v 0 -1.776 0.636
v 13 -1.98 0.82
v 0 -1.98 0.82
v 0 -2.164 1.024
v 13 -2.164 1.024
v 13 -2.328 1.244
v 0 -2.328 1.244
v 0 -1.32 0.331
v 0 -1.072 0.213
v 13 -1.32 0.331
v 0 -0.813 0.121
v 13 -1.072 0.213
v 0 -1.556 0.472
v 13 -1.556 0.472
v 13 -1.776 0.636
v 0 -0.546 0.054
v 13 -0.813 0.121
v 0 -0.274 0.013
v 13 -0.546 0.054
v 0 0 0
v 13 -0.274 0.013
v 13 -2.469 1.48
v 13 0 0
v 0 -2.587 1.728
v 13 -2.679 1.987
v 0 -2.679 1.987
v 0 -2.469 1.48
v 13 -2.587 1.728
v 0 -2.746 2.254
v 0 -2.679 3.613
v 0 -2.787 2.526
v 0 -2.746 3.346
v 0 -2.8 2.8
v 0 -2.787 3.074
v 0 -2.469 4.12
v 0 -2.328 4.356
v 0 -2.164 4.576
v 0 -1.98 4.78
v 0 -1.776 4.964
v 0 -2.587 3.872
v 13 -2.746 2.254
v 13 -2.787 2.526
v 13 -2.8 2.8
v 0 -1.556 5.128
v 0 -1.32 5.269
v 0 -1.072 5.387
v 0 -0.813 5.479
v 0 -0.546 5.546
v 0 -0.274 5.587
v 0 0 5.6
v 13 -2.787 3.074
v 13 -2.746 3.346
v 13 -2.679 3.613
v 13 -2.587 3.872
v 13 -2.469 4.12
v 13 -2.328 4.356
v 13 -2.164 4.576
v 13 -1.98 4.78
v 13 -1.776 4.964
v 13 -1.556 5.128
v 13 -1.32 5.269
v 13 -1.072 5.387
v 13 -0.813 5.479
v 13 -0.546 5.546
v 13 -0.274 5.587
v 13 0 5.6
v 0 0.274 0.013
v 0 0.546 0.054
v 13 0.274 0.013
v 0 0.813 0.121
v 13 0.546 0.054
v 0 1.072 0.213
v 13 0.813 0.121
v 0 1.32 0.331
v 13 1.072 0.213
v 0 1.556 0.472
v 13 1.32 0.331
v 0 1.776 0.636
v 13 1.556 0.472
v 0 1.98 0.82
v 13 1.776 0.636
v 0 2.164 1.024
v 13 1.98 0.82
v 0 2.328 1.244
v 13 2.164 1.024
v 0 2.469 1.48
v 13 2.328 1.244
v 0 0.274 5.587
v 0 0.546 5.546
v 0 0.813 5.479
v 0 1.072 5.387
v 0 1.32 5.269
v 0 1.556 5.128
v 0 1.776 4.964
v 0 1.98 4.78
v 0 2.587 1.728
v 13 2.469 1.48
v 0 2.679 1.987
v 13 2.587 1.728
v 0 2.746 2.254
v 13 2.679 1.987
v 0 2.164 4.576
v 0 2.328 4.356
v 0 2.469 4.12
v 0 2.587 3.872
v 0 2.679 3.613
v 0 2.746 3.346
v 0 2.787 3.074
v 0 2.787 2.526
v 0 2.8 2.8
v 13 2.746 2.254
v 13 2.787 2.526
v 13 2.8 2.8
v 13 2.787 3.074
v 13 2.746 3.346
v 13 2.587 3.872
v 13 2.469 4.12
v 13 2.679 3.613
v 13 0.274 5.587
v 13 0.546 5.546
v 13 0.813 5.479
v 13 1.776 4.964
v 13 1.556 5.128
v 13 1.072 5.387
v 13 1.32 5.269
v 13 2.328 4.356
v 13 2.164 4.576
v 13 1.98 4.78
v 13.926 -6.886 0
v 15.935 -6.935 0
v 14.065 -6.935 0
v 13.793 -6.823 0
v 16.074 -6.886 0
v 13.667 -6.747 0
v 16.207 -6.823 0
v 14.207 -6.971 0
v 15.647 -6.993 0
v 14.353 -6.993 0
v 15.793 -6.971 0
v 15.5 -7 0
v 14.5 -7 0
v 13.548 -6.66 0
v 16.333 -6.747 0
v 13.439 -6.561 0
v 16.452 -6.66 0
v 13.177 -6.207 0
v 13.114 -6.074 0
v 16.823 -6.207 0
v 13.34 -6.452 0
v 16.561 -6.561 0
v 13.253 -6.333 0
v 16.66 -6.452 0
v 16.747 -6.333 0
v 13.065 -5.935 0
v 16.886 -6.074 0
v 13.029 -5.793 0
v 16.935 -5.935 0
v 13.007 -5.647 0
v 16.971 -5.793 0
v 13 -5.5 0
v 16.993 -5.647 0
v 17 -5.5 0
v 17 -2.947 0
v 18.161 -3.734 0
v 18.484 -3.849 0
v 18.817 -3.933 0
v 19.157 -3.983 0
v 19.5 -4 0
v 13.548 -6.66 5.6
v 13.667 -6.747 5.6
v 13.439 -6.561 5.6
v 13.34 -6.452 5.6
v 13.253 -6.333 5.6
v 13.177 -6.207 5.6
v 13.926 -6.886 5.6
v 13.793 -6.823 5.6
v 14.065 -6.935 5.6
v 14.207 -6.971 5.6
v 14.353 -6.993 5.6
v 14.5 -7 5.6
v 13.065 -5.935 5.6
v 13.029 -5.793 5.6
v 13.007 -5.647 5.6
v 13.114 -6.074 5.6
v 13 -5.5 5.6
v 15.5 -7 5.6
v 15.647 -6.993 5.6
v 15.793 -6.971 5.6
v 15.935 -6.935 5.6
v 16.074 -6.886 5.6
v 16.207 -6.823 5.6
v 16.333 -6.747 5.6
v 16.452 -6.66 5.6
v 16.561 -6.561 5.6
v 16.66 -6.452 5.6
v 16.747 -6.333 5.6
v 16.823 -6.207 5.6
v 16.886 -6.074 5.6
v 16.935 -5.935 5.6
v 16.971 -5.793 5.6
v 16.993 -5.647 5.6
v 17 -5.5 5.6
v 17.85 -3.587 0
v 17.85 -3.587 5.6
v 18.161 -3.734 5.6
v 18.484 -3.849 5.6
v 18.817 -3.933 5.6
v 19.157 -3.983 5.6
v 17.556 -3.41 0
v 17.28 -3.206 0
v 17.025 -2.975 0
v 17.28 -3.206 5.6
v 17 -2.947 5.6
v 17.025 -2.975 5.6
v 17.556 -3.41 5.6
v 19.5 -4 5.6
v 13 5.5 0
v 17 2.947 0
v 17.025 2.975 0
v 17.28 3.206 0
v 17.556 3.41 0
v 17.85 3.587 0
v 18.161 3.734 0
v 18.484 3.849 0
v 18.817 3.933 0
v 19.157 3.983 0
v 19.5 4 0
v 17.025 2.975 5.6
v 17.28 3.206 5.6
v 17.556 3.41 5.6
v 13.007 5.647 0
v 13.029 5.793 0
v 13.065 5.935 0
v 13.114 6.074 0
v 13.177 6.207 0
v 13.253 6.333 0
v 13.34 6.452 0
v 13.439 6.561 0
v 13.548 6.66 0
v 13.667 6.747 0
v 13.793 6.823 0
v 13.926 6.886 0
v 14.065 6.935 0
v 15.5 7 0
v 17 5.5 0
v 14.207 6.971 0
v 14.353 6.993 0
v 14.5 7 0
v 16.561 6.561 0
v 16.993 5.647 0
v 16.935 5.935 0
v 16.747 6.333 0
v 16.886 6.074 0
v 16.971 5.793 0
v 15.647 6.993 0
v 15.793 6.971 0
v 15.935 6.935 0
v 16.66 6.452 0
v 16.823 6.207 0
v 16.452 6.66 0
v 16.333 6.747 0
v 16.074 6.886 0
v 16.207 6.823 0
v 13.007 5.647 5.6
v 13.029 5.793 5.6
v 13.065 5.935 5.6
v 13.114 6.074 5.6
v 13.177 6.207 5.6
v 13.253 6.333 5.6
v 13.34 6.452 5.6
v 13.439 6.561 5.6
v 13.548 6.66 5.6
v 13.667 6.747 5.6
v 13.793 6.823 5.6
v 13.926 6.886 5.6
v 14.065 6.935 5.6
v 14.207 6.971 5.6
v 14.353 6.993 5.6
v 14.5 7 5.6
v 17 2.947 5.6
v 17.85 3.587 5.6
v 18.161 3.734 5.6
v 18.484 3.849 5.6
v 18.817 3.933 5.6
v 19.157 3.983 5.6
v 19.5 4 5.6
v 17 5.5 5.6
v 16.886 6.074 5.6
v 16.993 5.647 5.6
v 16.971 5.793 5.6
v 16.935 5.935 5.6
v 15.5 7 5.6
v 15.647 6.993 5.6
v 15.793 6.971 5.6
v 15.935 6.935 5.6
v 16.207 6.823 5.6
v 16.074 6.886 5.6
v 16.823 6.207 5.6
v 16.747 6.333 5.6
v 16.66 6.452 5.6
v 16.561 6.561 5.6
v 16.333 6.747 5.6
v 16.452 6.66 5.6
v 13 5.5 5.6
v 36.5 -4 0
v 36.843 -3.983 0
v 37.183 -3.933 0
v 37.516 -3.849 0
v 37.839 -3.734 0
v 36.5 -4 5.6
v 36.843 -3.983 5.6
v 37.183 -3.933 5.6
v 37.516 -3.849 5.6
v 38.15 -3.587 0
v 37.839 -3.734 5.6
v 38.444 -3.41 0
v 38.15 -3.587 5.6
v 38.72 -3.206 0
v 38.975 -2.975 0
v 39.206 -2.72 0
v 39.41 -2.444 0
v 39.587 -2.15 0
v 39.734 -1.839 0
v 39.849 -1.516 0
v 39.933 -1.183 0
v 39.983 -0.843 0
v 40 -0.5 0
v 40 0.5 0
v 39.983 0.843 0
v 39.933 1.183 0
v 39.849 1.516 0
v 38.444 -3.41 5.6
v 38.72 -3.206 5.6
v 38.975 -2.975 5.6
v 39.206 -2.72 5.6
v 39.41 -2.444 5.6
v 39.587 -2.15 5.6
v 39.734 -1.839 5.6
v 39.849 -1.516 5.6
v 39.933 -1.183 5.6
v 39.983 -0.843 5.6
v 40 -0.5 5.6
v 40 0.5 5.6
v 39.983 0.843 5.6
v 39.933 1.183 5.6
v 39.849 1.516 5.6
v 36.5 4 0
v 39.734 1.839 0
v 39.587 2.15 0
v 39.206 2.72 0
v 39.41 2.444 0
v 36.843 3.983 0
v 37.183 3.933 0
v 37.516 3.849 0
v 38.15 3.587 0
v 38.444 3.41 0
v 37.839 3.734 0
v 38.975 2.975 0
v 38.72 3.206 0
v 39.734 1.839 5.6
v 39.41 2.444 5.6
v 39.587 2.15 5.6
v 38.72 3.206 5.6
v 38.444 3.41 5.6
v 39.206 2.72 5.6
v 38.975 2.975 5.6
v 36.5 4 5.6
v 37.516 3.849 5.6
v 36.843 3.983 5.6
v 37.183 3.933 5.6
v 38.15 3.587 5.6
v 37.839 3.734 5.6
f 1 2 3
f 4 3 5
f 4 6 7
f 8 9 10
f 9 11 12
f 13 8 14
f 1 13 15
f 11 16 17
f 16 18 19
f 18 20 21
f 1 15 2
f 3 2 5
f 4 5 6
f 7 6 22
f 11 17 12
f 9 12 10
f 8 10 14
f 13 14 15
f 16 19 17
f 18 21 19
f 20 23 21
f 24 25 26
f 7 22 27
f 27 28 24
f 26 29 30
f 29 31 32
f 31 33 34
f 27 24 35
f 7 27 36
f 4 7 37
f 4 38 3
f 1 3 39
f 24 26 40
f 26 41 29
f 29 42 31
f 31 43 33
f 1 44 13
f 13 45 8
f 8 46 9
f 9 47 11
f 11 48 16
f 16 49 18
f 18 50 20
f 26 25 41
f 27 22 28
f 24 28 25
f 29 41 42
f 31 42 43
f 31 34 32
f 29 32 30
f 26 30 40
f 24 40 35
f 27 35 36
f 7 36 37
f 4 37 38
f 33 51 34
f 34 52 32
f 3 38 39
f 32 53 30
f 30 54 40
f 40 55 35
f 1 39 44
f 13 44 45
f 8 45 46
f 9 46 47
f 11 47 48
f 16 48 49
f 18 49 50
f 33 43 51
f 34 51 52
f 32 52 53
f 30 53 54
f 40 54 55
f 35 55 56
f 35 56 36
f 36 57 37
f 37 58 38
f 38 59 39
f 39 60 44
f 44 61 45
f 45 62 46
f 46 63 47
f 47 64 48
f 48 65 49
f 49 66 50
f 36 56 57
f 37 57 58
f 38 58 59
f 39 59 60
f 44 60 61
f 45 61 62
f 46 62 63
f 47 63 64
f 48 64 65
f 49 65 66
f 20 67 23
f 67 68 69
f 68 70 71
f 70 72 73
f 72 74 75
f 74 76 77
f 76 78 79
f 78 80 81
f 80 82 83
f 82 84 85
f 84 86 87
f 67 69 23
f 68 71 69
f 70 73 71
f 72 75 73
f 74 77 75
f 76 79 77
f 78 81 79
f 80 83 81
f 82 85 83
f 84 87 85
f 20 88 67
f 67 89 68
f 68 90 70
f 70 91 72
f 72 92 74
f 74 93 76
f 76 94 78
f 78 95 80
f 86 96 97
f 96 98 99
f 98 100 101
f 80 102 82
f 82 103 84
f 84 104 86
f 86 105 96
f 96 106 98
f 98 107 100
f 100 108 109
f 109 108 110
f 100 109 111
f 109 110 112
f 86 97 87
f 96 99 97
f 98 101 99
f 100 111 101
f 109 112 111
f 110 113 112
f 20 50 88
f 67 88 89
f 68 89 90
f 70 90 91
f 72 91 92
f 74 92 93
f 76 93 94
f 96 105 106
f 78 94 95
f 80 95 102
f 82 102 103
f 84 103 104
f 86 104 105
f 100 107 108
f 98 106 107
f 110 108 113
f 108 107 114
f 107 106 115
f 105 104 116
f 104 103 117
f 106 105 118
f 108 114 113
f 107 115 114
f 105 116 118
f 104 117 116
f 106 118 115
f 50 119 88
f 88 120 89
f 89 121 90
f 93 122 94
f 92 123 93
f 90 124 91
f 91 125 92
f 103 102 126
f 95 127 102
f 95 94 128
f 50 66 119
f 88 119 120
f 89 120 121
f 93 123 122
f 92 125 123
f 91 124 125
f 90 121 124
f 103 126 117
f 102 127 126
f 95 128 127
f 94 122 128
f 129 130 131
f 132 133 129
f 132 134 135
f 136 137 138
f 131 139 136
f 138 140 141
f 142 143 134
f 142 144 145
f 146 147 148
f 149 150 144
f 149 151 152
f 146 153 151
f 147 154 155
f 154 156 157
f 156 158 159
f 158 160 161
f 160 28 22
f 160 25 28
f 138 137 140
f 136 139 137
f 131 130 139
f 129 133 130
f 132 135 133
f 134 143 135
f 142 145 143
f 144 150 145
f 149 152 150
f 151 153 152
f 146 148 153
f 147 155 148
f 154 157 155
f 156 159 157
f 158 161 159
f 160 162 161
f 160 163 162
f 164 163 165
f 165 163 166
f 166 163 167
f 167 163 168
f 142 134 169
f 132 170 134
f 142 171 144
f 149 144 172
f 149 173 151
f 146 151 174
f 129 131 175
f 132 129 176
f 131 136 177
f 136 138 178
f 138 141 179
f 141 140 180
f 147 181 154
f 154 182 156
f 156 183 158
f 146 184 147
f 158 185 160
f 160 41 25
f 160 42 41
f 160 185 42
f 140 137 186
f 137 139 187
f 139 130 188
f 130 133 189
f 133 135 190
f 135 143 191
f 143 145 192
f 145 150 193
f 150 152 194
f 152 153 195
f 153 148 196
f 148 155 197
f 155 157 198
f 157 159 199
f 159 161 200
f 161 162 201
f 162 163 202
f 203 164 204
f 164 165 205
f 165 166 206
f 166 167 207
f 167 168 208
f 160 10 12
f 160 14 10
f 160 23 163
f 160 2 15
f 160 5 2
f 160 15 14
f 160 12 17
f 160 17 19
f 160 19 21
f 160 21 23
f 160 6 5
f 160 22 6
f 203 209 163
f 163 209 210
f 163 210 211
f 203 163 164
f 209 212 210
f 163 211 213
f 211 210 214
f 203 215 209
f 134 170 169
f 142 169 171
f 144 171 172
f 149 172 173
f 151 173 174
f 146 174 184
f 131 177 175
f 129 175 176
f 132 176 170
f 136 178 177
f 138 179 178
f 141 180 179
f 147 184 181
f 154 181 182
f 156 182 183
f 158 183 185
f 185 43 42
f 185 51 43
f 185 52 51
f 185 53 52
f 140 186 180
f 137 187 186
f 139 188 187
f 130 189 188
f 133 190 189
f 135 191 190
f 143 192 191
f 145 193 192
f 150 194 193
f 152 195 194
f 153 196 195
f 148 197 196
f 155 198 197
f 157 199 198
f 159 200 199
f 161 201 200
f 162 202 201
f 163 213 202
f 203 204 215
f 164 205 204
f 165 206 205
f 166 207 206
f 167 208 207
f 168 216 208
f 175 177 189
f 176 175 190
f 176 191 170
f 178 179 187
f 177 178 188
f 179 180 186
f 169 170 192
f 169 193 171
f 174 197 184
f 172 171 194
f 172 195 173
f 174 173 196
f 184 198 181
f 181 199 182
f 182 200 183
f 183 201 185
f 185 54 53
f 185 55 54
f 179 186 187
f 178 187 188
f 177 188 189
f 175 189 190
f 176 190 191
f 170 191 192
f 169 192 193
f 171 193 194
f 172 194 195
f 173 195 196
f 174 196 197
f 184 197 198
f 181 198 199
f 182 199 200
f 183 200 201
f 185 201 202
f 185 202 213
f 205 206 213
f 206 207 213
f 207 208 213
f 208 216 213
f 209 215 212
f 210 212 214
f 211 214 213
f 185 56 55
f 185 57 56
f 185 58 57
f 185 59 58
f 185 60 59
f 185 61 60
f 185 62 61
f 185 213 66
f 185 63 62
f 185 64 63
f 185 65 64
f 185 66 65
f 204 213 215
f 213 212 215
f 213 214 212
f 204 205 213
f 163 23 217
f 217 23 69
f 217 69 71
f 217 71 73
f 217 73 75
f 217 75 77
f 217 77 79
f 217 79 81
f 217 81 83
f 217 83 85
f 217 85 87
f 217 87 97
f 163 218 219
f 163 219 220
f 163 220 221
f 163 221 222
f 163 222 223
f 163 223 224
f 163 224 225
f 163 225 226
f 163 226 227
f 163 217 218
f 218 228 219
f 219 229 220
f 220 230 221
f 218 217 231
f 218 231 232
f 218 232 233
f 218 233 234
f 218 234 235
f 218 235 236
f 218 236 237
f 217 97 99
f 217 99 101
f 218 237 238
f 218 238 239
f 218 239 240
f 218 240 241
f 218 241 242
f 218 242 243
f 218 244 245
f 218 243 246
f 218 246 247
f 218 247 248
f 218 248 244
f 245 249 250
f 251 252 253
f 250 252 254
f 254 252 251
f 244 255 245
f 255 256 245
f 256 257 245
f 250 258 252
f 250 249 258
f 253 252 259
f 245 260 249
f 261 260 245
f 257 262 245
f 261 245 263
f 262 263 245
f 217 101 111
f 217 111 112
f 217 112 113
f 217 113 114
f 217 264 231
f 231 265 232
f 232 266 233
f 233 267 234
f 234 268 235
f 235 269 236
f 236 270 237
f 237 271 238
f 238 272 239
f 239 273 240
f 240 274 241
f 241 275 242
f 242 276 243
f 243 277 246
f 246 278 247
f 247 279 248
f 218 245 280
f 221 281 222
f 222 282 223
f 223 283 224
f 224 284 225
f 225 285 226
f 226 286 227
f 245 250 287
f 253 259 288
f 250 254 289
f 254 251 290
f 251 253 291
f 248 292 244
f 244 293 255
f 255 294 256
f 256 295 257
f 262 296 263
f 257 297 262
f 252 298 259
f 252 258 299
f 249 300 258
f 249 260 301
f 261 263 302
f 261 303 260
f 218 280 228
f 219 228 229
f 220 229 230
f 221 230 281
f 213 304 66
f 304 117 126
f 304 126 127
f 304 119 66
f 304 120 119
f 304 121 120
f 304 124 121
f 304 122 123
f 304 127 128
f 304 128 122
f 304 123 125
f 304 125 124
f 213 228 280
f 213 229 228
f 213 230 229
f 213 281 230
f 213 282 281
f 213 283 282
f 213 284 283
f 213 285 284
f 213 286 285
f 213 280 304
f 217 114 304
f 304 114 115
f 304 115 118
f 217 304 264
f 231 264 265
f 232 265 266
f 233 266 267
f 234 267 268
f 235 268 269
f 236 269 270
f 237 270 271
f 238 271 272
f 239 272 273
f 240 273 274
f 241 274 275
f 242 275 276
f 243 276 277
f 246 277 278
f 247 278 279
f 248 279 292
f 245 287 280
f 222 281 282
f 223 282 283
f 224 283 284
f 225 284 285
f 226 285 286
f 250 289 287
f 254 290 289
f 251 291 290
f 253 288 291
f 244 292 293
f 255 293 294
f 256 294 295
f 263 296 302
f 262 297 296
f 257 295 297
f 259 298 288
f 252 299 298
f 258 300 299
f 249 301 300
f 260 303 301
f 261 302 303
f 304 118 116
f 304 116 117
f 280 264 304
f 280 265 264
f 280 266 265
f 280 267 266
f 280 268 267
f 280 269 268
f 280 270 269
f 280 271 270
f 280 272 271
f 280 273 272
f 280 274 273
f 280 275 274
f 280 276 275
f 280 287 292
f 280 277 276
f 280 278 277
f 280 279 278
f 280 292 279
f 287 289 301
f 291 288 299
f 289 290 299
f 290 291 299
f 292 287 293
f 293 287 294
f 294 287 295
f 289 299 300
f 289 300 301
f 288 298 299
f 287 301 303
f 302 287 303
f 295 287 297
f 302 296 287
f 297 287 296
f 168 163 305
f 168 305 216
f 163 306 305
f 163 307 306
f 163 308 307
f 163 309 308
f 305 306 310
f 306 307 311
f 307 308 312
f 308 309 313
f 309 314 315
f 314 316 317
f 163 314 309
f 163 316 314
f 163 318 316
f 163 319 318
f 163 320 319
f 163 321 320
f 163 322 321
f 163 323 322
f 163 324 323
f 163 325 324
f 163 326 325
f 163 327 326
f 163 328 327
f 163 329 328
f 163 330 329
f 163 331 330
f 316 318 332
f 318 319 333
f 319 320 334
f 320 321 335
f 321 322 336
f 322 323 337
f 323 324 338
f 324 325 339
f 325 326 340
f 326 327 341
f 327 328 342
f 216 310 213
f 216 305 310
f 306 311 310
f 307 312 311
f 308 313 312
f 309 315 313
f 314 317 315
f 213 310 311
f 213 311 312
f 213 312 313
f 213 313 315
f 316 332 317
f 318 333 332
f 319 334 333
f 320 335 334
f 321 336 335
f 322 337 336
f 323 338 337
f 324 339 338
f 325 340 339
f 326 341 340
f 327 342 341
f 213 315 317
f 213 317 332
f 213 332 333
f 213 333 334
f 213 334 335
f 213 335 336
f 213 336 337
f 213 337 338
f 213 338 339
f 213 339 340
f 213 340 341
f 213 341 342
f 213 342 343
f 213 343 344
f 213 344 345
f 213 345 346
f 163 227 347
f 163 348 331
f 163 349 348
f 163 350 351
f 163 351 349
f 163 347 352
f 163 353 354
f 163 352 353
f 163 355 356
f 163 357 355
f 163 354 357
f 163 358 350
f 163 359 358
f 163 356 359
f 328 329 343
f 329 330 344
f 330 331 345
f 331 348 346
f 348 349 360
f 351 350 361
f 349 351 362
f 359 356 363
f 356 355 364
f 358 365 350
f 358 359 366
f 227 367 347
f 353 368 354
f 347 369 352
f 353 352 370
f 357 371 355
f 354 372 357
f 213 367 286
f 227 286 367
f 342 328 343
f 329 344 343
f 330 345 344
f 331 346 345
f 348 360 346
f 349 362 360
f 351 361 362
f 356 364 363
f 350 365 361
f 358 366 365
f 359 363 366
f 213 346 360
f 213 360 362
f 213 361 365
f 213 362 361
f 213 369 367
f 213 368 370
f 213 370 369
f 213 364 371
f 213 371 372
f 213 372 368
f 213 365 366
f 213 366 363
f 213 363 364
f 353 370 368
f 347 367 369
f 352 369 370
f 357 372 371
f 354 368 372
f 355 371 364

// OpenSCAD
// file: ../lib/soldier.scad
// toy-soldiers shared library
// All figures and weapons include this file. The grip interface constants
// are the contract: any weapon whose bar uses GRIP_BAR_D fits any figure
// whose hand uses GRIP_HOLE_D / GRIP_SLOT_W.

$fn = $preview ? 32 : 64;

// ---------------------------------------------------------------
// Grip interface — shared contract between figures and weapons
// ---------------------------------------------------------------
GRIP_BAR_D  = 5.6;  // weapon grip-bar diameter
GRIP_HOLE_D = 6.0;  // hand hole diameter (0.4mm clearance for FDM)
GRIP_SLOT_W = 5.3;  // C-opening width; bar snaps through the front
HAND_OD     = 11;   // hand outer diameter
HAND_H      = 9;    // hand height
GRIP_BAR_L  = 14;   // standard bar length (sticks out below the hand)

// ---------------------------------------------------------------
// Figure proportions (~70mm tall incl. base, +Y is forward)
// ---------------------------------------------------------------
BASE_D  = 26;  BASE_H  = 4;
LEG_H   = 22;  LEG_D   = 9;  HIP_X = 5.5;   // leg centre offset from middle
TORSO_H = 24;  TORSO_W = 20; TORSO_WAIST = 16; TORSO_D = 12;
HEAD_D  = 14;  NECK_H  = 3;

HIP_Z      = BASE_H + LEG_H;                 // 26
TORSO_Z0   = HIP_Z - 1;                      // torso overlaps hips 1mm
TORSO_Z1   = TORSO_Z0 + TORSO_H;             // 49
SHOULDER_Z = TORSO_Z1 - 3;                   // 46
SHOULDER_X = TORSO_W/2 + 1;                  // arm root
HEAD_CZ    = TORSO_Z1 + NECK_H + HEAD_D/2;   // head centre

// ---------------------------------------------------------------
// Primitives
// ---------------------------------------------------------------
module rounded_box(size, r=2)
    hull()
        for (x=[-1,1], y=[-1,1], z=[-1,1])
            translate([x*(size[0]/2-r), y*(size[1]/2-r), z*(size[2]/2-r)])
                sphere(r=r);

module limb(a, b, ra=4.5, rb=4)   // thick tapered limb between two points
    hull() { translate(a) sphere(r=ra); translate(b) sphere(r=rb); }

// ---------------------------------------------------------------
// Body parts
// ---------------------------------------------------------------
module base()
    cylinder(d1=BASE_D, d2=BASE_D-2, h=BASE_H);

module leg(x)
    union() {
        translate([x, 0, BASE_H-1]) cylinder(d=LEG_D, h=LEG_H+2);
        // boot: rests on the base, so no overhang
        translate([x, 3.5, BASE_H + 2.5]) rounded_box([LEG_D+1, 13, 5], 2);
    }

module torso()
    hull() {
        translate([0, 0, TORSO_Z0 + 2])
            rounded_box([TORSO_WAIST, TORSO_D-1, 4], 2);
        translate([0, 0, TORSO_Z1 - 2.5])
            rounded_box([TORSO_W, TORSO_D, 5], 2);
    }

module head() {
    // stout neck; the sphere's underside meets it at <45deg so no supports
    translate([0, 0, TORSO_Z1 - 1]) cylinder(d=9.5, h=NECK_H + 3);
    translate([0, 0, HEAD_CZ]) sphere(d=HEAD_D);
}

module helmet()
    translate([0, 0, HEAD_CZ + 1]) {
        difference() {
            sphere(d=HEAD_D + 3.5);
            translate([0, 0, -HEAD_D/2]) cube(HEAD_D*2, center=true);
        }
        // brim with 45-degree underside chamfer
        cylinder(d1=HEAD_D + 1, d2=HEAD_D + 5, h=2);
    }

module cap()   // officer's peaked cap
    translate([0, 0, HEAD_CZ + HEAD_D/2 - 3.5]) {
        cylinder(d1=HEAD_D - 0.5, d2=HEAD_D + 1.5, h=4);
        translate([0, 0, 4]) cylinder(d=HEAD_D + 2, h=1.5);
        // peak: wedge jutting over the face, 45deg chamfered underside
        hull() {
            translate([0, HEAD_D/2 - 2, 1.25]) cube([11, 2, 2.5], center=true);
            translate([0, HEAD_D/2 + 3, 2.25]) cube([9, 1, 1.2], center=true);
        }
    }

module backpack()
    translate([0, -TORSO_D/2, SHOULDER_Z - 6])
        hull() {   // sloped underside back to the torso — printable
            translate([0, -1, -4]) rounded_box([13, 2, 4], 1);
            translate([0, -4, 2]) rounded_box([14, 6, 10], 2);
        }

// C-shaped grip hand, hole axis vertical, opening faces +Y (forward)
module grip_hand()
    difference() {
        cylinder(d=HAND_OD, h=HAND_H, center=true);
        cylinder(d=GRIP_HOLE_D, h=HAND_H + 2, center=true);
        translate([0, HAND_OD/4 + 0.5, 0])
            cube([GRIP_SLOT_W, HAND_OD/2 + 2, HAND_H + 2], center=true);
    }

module fist()
    sphere(d=9);

// ---------------------------------------------------------------
// Arms — s = +1 right, -1 left. Poses avoid >45-degree overhangs.
// ---------------------------------------------------------------
module arm(s, pose) {
    sh = [s*SHOULDER_X, 0, SHOULDER_Z];

    if (pose == "grip_side") {          // hand at the hip
        w = [s*(SHOULDER_X + 3), 4, SHOULDER_Z - 14];
        limb(sh, w);
        translate(w + [0, 1, -4]) grip_hand();
    }
    else if (pose == "grip_forward") {  // hand forward at waist height
        w = [s*(SHOULDER_X + 1), 9, SHOULDER_Z - 12];
        limb(sh, w);
        translate(w + [0, 2, -4]) grip_hand();
    }
    else if (pose == "grip_up") {       // bent arm, hand at shoulder height
        e = [s*(SHOULDER_X + 2), 3, SHOULDER_Z - 11];
        w = [s*(SHOULDER_X + 2), 9, SHOULDER_Z - 2];
        limb(sh, e);
        limb(e, w, 4, 4);
        translate(w + [0, 2, 2]) grip_hand();
    }
    else if (pose == "fist_side") {
        w = [s*(SHOULDER_X + 3), 3, SHOULDER_Z - 15];
        limb(sh, w);
        translate(w + [0, 0, -3]) fist();
    }
    else if (pose == "fist_forward") {
        w = [s*(SHOULDER_X + 1), 8, SHOULDER_Z - 13];
        limb(sh, w);
        translate(w + [0, 2, -2]) fist();
    }
    else if (pose == "point_up") {      // raised arm, ~40 degrees off vertical
        w = [s*(SHOULDER_X + 5), 6, SHOULDER_Z + 9];
        limb(sh, w);
        translate(w) sphere(d=8);
        translate(w) rotate([-40, s*15, 0]) cylinder(d=5, h=7);
    }
}

// ---------------------------------------------------------------
// Assembled soldier
// ---------------------------------------------------------------
module soldier(right_arm="grip_side", left_arm="fist_side",
               headgear="helmet", pack=false) {
    base();
    leg(-HIP_X); leg(HIP_X);
    torso();
    head();
    if (headgear == "helmet") helmet();
    if (headgear == "cap") cap();
    if (pack) backpack();
    arm( 1, right_arm);
    arm(-1, left_arm);
}

// ---------------------------------------------------------------
// Weapon helper — weapons are modelled in PRINT orientation:
// lying flat on the bed (z=0), length along X, "up in use" is +Y.
// The bar rests tangent on the bed so nothing floats.
// ---------------------------------------------------------------
module grip_bar(x, y_top, len=GRIP_BAR_L)
    translate([x, y_top, GRIP_BAR_D/2])
        rotate([90, 0, 0]) cylinder(d=GRIP_BAR_D, h=len);
// main file
// Toy dagger — round grip handle, wide rounded blade. Printed lying flat.
// Handle is the grip bar itself (along X here); held blade-up in the fist.
include <../lib/soldier.scad>

THK = 5.6;

module rrect(x0, y0, x1, y1, r=1.5)
    translate([(x0+x1)/2, (y0+y1)/2])
        offset(r=r) square([x1-x0-2*r, y1-y0-2*r], center=true);

// handle: bare grip bar lying along X, resting on the bed
translate([0, 0, GRIP_BAR_D/2])
    rotate([0, 90, 0]) cylinder(d=GRIP_BAR_D, h=15);

linear_extrude(THK)
    union() {
        rrect(13, -7, 17, 7, 1.5);      // cross-guard
        rrect(16, -4, 40, 4, 3.5);      // blade, fat rounded tip
    }
